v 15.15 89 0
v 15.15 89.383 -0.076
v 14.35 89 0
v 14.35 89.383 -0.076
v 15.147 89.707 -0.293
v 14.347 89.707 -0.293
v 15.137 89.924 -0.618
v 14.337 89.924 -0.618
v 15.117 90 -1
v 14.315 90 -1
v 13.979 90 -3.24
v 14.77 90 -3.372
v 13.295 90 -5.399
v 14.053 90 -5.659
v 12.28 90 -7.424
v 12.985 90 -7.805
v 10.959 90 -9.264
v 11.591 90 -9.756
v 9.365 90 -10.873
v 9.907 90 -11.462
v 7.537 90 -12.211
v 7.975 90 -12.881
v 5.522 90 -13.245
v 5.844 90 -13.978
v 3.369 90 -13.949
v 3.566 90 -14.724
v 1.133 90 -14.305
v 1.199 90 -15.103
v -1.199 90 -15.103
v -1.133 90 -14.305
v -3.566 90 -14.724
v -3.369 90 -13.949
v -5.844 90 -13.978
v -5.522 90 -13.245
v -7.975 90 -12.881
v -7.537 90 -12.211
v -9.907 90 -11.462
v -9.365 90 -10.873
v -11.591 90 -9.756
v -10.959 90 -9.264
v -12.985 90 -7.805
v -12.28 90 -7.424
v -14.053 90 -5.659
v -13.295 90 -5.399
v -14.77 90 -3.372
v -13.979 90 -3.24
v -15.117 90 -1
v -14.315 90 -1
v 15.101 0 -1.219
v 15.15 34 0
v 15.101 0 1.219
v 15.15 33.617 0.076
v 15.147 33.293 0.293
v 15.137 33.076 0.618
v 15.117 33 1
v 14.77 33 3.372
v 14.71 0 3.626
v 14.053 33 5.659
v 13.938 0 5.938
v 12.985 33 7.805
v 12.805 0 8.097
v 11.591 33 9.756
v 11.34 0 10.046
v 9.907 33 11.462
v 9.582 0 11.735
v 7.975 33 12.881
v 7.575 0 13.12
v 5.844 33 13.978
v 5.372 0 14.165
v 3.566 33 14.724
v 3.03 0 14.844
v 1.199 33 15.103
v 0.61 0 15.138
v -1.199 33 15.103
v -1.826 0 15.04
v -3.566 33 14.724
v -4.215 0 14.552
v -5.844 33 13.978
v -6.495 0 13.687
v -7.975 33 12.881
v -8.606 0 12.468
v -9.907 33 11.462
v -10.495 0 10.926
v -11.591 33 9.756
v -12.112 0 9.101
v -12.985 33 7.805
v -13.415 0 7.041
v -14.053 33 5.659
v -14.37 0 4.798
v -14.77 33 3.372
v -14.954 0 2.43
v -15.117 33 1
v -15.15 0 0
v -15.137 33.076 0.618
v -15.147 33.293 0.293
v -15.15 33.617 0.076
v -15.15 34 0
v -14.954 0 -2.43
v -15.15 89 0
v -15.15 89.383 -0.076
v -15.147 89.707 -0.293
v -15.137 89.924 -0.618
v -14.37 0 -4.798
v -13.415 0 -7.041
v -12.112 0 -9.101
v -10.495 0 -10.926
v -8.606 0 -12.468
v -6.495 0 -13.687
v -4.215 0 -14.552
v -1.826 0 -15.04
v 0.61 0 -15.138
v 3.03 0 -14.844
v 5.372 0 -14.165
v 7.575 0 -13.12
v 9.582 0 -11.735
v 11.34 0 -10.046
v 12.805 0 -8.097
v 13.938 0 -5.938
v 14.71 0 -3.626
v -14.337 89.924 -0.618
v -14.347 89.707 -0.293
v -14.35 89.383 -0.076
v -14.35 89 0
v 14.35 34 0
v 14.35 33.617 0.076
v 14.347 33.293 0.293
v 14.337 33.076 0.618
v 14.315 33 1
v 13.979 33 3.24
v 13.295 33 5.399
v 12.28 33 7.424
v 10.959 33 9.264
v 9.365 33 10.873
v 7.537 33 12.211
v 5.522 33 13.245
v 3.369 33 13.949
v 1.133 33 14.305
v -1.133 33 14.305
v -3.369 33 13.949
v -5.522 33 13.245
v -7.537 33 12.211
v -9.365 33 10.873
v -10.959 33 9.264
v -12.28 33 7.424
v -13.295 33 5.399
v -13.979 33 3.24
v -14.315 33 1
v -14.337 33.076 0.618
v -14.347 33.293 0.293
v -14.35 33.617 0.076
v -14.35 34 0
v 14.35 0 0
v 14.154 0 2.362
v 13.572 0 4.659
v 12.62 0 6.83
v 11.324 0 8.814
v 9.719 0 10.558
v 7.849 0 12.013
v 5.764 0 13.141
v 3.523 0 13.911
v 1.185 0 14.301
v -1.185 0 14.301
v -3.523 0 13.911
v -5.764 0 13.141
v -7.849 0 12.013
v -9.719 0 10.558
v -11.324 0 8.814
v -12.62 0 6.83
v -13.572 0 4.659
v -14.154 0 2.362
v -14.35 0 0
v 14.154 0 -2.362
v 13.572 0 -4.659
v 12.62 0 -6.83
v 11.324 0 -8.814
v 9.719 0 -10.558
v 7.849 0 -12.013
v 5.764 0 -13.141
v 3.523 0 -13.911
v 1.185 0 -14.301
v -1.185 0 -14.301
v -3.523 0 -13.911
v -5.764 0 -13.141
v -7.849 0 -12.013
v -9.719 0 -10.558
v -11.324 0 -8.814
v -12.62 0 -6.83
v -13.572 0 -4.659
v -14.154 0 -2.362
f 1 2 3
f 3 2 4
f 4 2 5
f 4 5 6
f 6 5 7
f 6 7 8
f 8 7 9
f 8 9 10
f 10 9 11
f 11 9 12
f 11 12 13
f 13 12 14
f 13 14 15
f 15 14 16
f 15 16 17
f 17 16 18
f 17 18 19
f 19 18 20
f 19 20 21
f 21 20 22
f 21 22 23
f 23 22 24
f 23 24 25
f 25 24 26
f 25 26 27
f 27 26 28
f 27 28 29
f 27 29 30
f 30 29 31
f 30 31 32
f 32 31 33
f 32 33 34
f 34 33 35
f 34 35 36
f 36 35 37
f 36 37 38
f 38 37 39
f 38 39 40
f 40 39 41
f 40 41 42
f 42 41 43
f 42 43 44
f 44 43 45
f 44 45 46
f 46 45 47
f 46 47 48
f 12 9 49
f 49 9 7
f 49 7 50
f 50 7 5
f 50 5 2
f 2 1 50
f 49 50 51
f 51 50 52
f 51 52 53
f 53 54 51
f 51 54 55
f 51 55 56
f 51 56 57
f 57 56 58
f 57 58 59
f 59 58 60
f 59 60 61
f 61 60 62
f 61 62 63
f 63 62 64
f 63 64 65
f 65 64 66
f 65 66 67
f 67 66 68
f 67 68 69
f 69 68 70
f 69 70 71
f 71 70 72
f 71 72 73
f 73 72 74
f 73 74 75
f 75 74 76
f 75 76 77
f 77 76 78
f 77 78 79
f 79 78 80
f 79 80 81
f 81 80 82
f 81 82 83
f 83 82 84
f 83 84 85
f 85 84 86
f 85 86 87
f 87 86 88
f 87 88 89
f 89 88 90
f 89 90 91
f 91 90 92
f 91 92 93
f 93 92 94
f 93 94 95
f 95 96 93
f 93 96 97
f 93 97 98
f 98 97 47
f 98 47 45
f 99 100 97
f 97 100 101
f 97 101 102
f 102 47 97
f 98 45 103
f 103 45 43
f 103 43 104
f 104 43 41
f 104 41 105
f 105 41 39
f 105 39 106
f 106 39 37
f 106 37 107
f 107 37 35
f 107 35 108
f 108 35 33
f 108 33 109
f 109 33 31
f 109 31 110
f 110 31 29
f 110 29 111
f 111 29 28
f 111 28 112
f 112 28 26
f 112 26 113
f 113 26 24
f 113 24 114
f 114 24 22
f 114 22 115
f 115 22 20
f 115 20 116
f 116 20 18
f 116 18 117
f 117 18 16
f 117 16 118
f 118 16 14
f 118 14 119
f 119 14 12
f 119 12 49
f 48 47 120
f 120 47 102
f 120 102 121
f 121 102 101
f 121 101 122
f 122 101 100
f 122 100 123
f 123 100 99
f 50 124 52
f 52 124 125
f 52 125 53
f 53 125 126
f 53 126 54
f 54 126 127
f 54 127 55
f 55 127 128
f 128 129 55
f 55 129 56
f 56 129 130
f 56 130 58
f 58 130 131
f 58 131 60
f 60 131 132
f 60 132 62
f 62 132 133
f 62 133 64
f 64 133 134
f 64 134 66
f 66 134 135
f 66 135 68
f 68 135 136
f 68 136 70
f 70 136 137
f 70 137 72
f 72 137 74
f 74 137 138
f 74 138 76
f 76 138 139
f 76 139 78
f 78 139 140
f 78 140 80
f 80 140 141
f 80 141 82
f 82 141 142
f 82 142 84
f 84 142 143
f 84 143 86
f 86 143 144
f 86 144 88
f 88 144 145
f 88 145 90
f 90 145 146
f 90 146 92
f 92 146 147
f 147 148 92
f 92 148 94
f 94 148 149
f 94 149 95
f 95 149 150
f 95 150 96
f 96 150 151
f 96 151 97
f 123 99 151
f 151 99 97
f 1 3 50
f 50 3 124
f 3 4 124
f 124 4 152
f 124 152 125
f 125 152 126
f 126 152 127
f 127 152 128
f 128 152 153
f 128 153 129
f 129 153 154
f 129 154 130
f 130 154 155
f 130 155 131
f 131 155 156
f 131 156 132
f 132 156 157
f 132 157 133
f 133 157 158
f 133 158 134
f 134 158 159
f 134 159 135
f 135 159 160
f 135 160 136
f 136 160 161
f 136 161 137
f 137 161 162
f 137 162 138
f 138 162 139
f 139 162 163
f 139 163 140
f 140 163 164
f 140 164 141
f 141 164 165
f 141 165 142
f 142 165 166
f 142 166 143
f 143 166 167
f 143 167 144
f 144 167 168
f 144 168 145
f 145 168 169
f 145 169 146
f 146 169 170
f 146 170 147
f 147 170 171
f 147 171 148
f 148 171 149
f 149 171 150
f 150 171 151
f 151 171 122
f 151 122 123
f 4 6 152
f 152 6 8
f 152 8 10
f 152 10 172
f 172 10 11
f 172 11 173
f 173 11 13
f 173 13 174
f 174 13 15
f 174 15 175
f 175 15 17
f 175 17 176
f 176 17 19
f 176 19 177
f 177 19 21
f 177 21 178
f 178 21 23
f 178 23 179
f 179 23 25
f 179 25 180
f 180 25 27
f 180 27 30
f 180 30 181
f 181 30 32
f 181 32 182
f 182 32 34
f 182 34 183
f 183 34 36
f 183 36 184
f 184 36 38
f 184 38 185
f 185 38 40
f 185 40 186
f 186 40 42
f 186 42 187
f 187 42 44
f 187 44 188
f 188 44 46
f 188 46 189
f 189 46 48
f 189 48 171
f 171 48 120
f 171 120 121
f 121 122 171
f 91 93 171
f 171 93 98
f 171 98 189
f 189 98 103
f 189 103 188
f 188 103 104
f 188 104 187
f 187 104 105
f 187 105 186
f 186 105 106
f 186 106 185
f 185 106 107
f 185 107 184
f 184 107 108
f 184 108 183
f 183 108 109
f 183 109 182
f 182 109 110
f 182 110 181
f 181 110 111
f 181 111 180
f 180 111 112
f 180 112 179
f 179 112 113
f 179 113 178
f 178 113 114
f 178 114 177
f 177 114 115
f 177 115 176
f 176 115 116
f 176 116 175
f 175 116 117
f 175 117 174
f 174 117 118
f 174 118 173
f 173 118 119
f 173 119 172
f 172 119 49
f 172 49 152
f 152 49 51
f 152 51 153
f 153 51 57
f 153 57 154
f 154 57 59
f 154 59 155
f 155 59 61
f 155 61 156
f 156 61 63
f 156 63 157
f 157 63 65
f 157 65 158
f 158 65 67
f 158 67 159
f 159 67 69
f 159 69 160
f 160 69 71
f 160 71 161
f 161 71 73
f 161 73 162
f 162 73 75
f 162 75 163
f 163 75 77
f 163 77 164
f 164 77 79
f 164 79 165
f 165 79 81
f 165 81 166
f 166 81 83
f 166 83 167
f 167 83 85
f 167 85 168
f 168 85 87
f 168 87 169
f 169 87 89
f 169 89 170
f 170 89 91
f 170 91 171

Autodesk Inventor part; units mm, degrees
ref_plane "YZ Plane" through (0, 0, 0) normal (1, 0, 0) x (0, 1, 0)
ref_plane "XZ Plane" through (0, 0, 0) normal (0, 1, 0) x (-1, 0, 0)
ref_plane "XY Plane" through (0, 0, 0) normal (0, 0, 1) x (1, 0, 0)
sketch "Boceto1" plane through (0, 0, 0) normal (0, 1, 0) x (-1, 0, 0)
  circle A0 centre (0, 0) radius 14.35
  circle A1 centre (0, 0) radius 15.15
  dimension "d0" = 28.7
  dimension "d1" = 0.8
extrude "Extrusión1" add sketch "Boceto1" along normal blind 90
sketch "Boceto2" plane through (0, 90, 0) normal (0, 1, 0) x (1, 0, 0)
  circle A0 centre (0, 0) radius 15.15 projected
  circle A1 centre (0, 0) radius 14.35 projected
  line L0 (-15.15, 0) -> (-14.35, 0)
  line L1 (14.35, 0) -> (15.15, 0)
extrude "Extrusión2" cut sketch "Boceto2" against normal blind 57 contours A0 L0 A1 L1 picked at (14.5976, -2.3533)
fillet "Empalme1" radius 1 4 edges at (-14.75, 33, 0) (14.75, 33, 0) (-14.75, 90, 0) (14.75, 90, 0)
properties part number "Embellecedor Espejo"
